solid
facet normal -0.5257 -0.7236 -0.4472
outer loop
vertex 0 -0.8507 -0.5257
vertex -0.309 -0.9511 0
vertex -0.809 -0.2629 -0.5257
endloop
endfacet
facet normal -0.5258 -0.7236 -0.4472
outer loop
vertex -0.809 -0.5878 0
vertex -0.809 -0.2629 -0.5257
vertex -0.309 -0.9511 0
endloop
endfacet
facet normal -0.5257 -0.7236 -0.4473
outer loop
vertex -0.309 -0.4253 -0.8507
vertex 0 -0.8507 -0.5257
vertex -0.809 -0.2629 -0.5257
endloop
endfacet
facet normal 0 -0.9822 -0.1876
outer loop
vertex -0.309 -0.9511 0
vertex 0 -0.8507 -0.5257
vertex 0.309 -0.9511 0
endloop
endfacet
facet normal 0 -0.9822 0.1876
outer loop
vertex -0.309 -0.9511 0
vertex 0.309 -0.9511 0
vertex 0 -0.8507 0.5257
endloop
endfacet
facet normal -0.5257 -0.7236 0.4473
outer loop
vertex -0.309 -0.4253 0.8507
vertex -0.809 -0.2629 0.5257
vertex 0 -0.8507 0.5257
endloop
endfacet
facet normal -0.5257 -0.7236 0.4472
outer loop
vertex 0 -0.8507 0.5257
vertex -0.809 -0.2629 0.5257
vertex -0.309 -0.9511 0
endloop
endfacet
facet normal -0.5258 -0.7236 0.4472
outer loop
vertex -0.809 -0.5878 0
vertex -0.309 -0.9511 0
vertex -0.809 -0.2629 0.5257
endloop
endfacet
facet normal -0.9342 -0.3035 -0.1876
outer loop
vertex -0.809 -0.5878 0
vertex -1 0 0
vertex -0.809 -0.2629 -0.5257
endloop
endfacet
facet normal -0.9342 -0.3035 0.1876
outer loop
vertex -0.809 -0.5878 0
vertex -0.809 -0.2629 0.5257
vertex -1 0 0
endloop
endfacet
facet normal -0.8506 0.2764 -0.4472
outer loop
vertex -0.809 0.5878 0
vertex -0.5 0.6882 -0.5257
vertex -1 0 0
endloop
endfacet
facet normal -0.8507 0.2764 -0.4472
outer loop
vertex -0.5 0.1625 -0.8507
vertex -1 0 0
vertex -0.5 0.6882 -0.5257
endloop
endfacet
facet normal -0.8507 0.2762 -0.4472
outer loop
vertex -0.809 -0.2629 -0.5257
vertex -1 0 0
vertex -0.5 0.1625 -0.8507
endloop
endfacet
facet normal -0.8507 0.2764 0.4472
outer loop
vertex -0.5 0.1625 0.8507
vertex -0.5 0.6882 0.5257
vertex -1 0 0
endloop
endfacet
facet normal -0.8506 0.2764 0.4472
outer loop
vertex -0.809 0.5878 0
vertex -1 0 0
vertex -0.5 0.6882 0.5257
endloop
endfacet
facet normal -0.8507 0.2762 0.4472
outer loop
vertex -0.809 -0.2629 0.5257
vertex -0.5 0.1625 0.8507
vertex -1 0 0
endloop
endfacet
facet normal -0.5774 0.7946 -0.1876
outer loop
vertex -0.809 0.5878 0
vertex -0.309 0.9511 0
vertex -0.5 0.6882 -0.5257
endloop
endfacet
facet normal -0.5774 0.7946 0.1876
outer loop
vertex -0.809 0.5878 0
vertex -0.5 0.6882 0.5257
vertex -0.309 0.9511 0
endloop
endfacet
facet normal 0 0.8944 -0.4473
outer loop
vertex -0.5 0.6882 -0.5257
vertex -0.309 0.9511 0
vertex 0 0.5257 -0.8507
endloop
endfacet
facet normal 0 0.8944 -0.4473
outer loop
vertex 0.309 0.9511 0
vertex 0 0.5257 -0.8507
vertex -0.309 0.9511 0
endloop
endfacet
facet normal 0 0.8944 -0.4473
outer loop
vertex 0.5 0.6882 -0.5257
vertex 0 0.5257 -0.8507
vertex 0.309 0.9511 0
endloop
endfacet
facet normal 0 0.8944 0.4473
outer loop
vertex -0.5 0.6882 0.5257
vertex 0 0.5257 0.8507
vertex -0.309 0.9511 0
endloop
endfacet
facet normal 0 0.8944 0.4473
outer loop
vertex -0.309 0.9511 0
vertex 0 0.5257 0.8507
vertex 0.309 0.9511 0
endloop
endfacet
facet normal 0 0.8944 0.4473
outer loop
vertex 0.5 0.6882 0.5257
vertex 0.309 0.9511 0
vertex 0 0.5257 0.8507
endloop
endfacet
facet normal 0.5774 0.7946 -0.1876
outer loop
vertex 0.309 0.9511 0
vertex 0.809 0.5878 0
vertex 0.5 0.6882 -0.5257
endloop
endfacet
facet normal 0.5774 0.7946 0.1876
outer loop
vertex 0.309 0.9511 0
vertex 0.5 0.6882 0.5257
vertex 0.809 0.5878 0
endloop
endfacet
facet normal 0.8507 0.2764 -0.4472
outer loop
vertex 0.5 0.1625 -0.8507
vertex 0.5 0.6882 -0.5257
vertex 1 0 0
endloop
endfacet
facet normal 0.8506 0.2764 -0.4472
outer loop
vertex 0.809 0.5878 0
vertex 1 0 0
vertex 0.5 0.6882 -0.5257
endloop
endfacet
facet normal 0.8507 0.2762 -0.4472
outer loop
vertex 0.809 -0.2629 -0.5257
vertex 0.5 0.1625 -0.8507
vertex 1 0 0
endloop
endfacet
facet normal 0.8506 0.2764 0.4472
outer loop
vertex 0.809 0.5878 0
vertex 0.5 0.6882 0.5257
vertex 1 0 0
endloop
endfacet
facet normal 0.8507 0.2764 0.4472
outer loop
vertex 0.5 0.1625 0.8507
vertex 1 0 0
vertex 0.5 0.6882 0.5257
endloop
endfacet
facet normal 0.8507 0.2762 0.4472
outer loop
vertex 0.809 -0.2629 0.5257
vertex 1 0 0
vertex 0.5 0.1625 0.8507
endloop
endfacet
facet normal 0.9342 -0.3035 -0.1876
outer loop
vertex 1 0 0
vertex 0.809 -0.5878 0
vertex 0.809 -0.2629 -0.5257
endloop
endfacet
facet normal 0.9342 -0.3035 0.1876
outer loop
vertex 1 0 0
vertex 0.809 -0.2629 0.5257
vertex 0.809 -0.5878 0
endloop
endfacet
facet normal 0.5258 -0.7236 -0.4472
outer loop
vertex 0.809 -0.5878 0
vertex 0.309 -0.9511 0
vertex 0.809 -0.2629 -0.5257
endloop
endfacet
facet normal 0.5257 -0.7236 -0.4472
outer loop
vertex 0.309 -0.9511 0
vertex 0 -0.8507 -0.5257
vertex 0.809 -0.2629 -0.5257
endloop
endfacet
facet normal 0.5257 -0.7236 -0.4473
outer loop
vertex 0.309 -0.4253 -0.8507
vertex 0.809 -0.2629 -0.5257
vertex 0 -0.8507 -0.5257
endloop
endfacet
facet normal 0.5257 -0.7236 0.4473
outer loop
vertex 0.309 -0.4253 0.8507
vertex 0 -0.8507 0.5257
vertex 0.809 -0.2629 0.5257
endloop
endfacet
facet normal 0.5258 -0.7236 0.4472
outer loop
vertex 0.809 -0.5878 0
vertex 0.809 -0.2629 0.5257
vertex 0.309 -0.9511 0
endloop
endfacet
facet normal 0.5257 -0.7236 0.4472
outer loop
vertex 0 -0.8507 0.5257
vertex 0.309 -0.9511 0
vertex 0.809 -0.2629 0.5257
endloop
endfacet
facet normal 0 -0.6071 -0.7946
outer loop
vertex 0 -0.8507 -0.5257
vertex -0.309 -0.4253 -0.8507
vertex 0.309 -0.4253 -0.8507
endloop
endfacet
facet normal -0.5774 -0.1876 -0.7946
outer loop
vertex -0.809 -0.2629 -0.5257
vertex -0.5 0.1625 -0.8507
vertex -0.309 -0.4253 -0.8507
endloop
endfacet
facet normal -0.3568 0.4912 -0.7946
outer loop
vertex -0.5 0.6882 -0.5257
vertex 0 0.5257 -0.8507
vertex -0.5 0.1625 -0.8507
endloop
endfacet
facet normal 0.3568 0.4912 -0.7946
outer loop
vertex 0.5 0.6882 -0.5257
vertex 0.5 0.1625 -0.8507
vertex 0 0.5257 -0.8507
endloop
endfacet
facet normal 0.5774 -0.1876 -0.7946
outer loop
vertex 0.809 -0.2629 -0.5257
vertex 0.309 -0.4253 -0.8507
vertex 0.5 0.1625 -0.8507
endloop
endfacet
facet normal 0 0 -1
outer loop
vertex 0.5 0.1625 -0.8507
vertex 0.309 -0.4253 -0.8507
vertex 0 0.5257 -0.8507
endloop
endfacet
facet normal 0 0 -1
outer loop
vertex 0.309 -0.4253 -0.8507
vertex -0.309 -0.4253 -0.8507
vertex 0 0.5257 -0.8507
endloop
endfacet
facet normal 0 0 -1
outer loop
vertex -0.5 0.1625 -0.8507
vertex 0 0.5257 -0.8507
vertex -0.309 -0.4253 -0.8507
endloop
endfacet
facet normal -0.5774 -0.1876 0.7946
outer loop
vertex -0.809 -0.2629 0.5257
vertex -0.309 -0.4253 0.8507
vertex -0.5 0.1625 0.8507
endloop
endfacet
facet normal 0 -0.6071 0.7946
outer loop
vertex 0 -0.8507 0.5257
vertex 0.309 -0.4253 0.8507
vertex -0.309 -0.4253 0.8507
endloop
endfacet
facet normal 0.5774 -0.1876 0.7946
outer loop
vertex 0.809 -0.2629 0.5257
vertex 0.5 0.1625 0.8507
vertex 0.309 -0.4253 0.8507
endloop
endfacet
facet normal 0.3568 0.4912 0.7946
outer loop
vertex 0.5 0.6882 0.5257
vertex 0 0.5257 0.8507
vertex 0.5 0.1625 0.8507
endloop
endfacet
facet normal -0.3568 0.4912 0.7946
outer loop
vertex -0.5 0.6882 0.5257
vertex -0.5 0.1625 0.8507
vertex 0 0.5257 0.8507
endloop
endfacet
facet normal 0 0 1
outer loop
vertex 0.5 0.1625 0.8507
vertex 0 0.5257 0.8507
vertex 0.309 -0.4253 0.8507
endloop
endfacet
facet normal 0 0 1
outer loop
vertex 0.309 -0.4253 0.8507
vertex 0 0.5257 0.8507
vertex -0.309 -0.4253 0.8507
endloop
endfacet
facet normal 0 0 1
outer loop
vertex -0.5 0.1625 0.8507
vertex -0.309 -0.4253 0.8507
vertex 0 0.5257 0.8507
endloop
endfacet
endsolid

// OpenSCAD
polyhedron( points = [[-0.309016994390167, -0.951056516290208, 1.72453765145486e-15], [-0.809016994449985, -0.587785252189192, 1.72453765145486e-15], [-0.999999999970632, 6.92742657656031e-11, 1.72453765145486e-15], [-0.809016994291653, 0.587785252276293, 1.72453765145486e-15], [-0.30901699430478, 0.951056516187124, 1.72453765145486e-15], [0.309016994380505, 0.951056516131624, 1.72453765145486e-15], [0.809016994302147, 0.587785252131005, 1.72453765145486e-15], [0.99999999987557, -1.10314053449435e-10, 1.72453765145486e-15], [0.809016994249374, -0.587785252334484, 1.72453765145486e-15], [0.309016994295124, -0.951056516290208, 1.72453765145486e-15], [-3.15018822631228e-11, -0.850650808063369, -0.525731112013908], [-0.809016994434835, -0.262865555824054, -0.525731111750854], [-0.499999999875873, 0.688190960117112, -0.525731112038726], [0.499999999930337, 0.688190960008487, -0.525731112038726], [0.809016994176254, -0.262865556124833, -0.525731112038726], [-0.309016994440366, -0.425325403784716, -0.850650807947289], [-0.499999999887964, 0.162459848073428, -0.850650808220627], [4.1926163441716e-12, 0.52573111190889, -0.850650808220627], [0.499999999824882, 0.162459847975062, -0.850650808220627], [0.309016994228274, -0.425325403597733, -0.850650807848663], [-0.809016994128435, -0.262865555884096, 0.525731112013907], [1.20281698100027e-10, -0.850650808336222, 0.525731111750854], [0.809016994186142, -0.262865556094363, 0.525731112038725], [0.499999999904404, 0.688190960027312, 0.525731112038725], [-0.499999999901806, 0.688190960098275, 0.525731112038725], [-0.309016994043686, -0.425325404072925, 0.850650807947286], [0.309016994238299, -0.425325404127165, 0.850650808220624], [0.499999999822082, 0.162459847983628, 0.850650808220624], [-4.83190748337339e-12, 0.525731111908884, 0.850650808220624], [-0.499999999381354, 0.162459848227485, 0.85065080784866]], faces = [[0, 1, 11, 15, 10], [0, 10, 9], [0, 9, 21], [0, 21, 25, 20, 1], [1, 2, 11], [1, 20, 2], [2, 3, 12, 16, 11], [2, 20, 29, 24, 3], [3, 4, 12], [3, 24, 4], [4, 5, 13, 17, 12], [4, 24, 28, 23, 5], [5, 6, 13], [5, 23, 6], [6, 7, 14, 18, 13], [6, 23, 27, 22, 7], [7, 8, 14], [7, 22, 8], [8, 9, 10, 19, 14], [8, 22, 26, 21, 9], [10, 15, 19], [11, 16, 15], [12, 17, 16], [13, 18, 17], [14, 19, 18], [15, 16, 17, 18, 19], [20, 25, 29], [21, 26, 25], [22, 27, 26], [23, 28, 27], [24, 29, 28], [25, 26, 27, 28, 29]]);
